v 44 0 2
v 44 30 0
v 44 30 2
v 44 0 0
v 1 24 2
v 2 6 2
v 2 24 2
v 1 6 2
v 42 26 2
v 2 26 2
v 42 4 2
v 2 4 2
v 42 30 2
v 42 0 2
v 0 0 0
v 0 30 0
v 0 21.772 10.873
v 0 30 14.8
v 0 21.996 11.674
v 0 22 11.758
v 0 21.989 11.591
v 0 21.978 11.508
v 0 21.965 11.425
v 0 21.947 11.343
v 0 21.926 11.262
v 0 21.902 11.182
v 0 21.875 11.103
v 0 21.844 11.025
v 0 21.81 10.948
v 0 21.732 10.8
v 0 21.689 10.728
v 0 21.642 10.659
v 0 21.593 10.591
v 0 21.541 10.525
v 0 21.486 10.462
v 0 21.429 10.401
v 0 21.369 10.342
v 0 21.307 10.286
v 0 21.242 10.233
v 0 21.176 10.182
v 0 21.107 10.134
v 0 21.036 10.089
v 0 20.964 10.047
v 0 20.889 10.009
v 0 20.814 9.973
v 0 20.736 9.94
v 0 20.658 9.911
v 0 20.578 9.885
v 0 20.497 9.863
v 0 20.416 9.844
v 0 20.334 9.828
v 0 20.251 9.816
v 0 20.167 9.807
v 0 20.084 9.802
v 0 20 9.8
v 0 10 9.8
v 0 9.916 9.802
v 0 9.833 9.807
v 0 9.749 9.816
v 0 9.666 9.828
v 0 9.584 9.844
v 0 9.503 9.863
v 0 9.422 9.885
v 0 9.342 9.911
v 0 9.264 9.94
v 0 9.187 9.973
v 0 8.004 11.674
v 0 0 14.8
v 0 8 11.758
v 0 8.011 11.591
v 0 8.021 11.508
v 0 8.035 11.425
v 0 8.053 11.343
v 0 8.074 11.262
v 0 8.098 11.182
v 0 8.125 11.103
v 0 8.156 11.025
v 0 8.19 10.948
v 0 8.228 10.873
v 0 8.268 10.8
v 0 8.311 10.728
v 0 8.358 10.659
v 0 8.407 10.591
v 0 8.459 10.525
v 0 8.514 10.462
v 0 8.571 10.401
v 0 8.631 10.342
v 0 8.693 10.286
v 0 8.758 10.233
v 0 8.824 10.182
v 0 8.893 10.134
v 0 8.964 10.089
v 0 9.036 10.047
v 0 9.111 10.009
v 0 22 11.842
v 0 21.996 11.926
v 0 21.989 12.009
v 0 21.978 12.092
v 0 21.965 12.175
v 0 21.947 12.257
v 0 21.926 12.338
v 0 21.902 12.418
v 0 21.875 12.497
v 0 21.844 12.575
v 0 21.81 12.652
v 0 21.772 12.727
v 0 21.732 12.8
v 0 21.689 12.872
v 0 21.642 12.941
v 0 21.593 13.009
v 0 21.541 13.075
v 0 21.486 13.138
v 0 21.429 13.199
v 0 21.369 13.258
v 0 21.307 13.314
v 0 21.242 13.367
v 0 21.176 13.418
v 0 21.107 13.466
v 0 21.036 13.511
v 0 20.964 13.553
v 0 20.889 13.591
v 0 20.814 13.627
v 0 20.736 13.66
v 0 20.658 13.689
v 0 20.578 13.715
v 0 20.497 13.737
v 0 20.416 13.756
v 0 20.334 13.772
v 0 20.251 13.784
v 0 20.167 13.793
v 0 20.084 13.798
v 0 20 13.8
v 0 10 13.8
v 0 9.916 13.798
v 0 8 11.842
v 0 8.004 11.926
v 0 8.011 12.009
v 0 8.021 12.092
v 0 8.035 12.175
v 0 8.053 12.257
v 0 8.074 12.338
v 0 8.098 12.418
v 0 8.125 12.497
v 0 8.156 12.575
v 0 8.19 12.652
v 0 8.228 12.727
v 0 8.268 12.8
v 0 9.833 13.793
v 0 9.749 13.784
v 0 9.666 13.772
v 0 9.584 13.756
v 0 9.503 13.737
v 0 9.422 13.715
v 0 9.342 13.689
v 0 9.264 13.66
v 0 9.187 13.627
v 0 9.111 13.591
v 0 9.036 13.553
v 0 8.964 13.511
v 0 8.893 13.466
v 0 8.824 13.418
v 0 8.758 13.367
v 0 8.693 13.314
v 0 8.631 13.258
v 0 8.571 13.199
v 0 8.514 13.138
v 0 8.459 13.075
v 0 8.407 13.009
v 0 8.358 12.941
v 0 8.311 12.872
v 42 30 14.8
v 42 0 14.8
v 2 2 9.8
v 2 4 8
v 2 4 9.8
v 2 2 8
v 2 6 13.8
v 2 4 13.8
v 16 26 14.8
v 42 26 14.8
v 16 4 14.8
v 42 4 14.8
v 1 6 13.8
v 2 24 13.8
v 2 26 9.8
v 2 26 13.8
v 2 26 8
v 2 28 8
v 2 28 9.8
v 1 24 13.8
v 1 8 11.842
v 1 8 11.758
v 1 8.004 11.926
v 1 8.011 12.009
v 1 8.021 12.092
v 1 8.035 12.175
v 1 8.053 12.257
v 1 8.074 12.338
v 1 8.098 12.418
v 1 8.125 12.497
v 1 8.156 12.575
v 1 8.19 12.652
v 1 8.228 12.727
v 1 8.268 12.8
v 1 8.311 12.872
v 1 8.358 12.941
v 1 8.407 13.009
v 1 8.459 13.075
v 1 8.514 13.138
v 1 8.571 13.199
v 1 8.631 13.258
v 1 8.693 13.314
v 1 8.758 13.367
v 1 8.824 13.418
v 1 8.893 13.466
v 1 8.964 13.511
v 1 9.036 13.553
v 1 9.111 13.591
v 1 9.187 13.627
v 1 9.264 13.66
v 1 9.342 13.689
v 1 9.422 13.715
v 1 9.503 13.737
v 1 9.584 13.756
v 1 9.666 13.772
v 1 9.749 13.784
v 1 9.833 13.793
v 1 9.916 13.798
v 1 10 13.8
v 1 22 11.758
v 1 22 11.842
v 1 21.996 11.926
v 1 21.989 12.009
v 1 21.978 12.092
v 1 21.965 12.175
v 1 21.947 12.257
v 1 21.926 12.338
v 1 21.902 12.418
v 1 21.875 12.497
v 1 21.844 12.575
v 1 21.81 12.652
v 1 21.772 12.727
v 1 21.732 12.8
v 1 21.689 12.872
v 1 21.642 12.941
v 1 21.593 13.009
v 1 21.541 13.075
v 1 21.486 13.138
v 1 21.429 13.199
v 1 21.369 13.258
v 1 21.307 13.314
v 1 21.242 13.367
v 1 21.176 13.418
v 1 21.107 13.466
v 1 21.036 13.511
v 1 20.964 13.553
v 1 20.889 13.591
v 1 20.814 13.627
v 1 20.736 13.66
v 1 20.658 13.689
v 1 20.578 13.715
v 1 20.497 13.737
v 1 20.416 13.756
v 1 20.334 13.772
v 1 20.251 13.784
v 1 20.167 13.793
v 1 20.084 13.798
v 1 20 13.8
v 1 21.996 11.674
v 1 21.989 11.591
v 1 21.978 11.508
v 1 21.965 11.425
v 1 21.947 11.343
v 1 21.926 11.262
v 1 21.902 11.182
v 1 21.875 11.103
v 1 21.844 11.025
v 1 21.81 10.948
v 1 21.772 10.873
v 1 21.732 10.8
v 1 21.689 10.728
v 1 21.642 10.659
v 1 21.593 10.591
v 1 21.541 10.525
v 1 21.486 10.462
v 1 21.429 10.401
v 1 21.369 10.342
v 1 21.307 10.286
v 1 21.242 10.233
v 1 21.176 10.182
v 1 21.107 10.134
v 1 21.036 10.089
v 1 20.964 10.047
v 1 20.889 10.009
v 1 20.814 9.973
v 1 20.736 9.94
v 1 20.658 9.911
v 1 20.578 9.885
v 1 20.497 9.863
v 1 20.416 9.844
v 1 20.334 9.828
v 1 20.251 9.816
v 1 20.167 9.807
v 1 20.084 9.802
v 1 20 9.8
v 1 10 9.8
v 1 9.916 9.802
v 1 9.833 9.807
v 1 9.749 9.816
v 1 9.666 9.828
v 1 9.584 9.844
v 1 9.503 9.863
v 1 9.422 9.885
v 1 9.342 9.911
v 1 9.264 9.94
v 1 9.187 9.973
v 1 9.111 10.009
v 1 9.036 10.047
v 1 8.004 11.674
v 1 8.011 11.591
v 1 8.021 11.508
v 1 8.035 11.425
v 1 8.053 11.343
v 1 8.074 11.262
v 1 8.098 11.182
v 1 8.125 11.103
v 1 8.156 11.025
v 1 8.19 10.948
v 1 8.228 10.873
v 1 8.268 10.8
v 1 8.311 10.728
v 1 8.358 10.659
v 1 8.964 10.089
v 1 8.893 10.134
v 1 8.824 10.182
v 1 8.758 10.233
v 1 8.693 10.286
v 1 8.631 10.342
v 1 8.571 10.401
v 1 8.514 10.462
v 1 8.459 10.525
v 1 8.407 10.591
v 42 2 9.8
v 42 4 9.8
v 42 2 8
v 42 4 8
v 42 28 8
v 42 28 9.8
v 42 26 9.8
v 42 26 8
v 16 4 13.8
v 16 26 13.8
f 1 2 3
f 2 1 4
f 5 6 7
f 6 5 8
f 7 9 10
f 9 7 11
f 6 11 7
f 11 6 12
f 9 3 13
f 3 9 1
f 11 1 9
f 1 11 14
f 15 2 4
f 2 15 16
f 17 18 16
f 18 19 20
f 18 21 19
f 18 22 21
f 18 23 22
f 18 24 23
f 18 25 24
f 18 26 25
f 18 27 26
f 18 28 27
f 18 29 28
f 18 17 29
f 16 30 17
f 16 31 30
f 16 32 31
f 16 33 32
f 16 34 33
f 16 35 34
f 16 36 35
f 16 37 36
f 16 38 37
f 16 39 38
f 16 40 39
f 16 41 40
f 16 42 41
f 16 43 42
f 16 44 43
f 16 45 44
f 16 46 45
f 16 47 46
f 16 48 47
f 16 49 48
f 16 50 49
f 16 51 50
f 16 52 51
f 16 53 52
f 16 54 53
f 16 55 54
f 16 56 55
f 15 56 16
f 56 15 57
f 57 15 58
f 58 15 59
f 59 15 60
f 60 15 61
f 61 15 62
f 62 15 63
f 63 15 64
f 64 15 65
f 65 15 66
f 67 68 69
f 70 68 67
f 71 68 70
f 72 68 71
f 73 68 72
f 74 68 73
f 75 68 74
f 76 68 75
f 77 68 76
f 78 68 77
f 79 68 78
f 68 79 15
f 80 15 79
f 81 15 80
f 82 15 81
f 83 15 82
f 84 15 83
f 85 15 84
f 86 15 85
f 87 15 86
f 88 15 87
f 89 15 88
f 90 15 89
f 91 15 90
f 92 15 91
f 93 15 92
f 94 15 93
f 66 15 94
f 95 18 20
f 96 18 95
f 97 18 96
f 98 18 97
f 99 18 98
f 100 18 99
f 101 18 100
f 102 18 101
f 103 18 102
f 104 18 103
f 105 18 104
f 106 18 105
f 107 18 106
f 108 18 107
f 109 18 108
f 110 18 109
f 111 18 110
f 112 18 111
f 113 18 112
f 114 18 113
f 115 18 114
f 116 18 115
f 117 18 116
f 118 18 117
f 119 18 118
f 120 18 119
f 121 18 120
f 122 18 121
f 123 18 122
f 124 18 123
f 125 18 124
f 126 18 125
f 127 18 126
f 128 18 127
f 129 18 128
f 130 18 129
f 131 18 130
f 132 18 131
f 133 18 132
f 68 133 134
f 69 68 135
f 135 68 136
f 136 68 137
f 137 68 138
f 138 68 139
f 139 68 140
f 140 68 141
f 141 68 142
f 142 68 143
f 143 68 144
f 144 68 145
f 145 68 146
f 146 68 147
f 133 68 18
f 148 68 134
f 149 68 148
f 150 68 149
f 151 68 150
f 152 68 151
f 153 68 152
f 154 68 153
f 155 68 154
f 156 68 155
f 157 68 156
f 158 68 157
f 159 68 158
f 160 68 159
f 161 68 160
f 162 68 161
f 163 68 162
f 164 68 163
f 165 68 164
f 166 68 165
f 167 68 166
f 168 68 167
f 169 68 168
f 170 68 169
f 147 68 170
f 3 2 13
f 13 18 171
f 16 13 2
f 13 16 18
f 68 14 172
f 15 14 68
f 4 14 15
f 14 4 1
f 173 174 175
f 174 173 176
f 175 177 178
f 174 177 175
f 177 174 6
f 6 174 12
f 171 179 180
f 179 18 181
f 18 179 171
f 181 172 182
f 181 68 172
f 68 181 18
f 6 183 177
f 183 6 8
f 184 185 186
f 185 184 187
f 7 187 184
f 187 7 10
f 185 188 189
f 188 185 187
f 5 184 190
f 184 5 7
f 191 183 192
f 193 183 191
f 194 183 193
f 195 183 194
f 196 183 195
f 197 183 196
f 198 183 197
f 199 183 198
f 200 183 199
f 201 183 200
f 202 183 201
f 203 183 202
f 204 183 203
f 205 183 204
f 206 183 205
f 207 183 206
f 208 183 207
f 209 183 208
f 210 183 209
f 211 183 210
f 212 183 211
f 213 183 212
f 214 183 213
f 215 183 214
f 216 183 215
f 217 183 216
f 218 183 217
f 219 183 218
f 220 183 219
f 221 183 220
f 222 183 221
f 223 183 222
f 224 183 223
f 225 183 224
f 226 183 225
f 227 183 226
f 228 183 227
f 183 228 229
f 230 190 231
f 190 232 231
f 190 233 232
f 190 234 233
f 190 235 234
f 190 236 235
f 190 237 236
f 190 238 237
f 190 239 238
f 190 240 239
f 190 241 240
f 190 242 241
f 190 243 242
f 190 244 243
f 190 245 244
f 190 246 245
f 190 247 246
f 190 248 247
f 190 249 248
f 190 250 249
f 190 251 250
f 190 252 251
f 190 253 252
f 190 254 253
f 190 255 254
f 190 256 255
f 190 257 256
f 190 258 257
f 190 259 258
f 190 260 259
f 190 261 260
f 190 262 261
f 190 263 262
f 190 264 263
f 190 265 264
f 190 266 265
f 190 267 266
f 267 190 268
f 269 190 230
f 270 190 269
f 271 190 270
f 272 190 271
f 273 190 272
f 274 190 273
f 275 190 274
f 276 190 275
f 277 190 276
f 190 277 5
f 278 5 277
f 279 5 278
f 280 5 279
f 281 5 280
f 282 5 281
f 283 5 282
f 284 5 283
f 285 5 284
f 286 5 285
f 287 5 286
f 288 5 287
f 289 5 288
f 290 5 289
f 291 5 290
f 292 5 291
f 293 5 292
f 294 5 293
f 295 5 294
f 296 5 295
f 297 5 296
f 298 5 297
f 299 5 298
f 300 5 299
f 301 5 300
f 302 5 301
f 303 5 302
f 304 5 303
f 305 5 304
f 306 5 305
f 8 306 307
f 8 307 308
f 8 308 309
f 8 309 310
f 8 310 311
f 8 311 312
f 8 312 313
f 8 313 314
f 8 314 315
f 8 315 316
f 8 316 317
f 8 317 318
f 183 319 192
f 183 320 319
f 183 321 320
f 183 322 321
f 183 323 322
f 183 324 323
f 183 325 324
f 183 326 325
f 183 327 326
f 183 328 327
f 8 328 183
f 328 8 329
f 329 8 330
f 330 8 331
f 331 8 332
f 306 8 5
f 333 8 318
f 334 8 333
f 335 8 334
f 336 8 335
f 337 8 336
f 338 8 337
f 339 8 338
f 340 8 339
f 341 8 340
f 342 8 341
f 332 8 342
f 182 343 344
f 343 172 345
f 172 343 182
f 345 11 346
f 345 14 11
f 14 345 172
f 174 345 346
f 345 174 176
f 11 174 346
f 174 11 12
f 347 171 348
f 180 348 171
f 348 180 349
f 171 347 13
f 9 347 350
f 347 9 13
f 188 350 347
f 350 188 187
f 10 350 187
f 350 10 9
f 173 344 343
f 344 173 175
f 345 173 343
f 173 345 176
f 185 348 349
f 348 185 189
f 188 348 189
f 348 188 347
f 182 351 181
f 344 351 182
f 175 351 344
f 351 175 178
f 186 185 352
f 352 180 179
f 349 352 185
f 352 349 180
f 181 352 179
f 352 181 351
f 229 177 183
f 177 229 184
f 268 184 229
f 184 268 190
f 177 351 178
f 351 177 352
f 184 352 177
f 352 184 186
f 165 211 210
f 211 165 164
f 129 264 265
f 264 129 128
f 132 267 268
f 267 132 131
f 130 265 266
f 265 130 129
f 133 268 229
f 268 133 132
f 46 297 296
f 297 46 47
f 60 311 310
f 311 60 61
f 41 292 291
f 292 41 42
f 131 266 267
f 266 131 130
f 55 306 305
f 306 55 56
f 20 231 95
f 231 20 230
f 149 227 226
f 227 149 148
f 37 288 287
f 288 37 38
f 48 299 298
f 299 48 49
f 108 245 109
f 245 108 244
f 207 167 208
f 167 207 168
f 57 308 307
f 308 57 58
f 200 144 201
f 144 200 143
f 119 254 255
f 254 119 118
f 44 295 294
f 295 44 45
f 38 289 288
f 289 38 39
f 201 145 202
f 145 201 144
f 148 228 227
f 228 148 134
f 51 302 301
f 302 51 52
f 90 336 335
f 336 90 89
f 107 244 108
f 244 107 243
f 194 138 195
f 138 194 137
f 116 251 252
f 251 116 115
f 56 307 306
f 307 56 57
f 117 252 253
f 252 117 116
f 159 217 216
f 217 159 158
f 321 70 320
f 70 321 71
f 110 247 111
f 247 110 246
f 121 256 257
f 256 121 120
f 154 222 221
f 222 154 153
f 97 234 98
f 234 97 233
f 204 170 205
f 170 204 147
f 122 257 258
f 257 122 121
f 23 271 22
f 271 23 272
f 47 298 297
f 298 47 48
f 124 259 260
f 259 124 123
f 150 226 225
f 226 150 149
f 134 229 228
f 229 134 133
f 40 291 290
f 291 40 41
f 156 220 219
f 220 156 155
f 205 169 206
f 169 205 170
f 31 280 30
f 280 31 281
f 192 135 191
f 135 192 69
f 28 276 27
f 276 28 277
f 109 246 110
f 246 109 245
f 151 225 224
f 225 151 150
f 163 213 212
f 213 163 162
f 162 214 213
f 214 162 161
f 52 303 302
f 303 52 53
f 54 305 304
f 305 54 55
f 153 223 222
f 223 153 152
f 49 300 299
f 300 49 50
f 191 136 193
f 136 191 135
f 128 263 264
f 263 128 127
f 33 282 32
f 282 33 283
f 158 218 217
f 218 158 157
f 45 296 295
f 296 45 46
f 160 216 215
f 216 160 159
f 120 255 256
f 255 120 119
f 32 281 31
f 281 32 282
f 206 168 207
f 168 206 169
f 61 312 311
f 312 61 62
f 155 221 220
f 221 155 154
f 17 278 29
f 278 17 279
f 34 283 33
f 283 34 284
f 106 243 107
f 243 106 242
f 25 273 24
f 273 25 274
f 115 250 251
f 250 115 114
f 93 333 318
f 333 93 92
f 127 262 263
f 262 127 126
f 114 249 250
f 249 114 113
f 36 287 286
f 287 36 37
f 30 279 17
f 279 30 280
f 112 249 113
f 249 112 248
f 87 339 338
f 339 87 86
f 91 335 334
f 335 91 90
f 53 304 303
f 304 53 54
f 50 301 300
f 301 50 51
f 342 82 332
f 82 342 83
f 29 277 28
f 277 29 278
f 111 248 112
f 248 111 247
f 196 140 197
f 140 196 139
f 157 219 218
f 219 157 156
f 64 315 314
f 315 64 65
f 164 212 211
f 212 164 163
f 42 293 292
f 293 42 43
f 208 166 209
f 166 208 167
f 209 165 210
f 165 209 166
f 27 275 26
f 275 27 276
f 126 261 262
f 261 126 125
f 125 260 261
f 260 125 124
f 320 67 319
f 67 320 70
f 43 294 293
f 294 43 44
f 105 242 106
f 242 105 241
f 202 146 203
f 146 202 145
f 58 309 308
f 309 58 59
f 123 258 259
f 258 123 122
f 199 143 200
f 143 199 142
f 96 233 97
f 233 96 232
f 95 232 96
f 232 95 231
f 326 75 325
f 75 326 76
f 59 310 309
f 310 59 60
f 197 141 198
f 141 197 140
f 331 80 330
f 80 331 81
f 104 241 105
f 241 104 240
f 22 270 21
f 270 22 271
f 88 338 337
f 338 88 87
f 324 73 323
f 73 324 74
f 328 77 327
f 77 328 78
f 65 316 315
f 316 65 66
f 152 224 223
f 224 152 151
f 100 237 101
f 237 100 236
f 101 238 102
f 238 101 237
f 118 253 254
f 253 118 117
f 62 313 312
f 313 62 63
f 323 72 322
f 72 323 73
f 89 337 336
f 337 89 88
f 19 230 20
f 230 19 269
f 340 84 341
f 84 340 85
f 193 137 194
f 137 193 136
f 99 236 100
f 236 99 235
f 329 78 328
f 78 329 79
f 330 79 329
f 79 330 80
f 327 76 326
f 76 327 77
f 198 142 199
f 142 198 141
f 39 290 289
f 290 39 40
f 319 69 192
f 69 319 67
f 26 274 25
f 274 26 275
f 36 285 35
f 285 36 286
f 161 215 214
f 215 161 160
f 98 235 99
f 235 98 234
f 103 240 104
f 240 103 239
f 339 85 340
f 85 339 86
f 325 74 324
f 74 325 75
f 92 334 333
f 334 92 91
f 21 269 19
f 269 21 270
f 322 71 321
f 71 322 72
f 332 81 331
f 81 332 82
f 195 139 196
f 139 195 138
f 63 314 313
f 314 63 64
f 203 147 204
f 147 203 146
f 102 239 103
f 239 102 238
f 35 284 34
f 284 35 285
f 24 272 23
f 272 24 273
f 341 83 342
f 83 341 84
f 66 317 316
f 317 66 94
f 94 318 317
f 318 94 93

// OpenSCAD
smoothness = 150;
module caseBottom(){

    hull(){
        color("green")sphere(r=4,$fn=smoothness);
        translate([0,65,0])color("green")sphere(r=4,$fn=smoothness);
        translate([117,0,0])color("green")sphere(r=4,$fn=smoothness);
        translate([117,65,0])color("green")sphere(r=4,$fn=smoothness);
        translate([0,0,0])rotate([0,90,0])cylinder(h=117,r=4,$fn=smoothness);
        translate([0,65,0])rotate([0,90,0])cylinder(h=117,r=4,$fn=smoothness);
        translate([0,0,0])rotate([-90,0,0])cylinder(h=65,r=4,$fn=smoothness);
        translate([117,0,0])rotate([-90,0,0])cylinder(h=65,r=4,$fn=smoothness);
    };
    {
        color("green")cylinder(h=10,r=4,$fn=smoothness);
        translate([0,65,0])color("green")cylinder(h=10,r=4,$fn=smoothness);
        translate([117,0,0])color("green")cylinder(h=10,r=4,$fn=smoothness);
        translate([117,65,0])color("green")cylinder(h=10,r=4,$fn=smoothness);
        translate([0,-4,0])rotate([0,0,0])cube([117,4,10]);
        translate([0,65,0])rotate([0,0,0])cube([117,4,10]);
        translate([-4,0,0])rotate([0,0,0])cube([4,65,10]);
        translate([117,0,0])rotate([0,0,0])cube([4,65,10]);
    }
};


radiomodulelength = 40;
radiowidth = 26;
pcbthickness = 1.8;
headerwidth = 2;
radiobottomgap = 6;
radiotopgap = 5;

module radioslide(){
    cube([radiomodulelength +2+2, radiowidth+2+2, 2]);
    cube([2,6, 2+radiobottomgap+pcbthickness+radiotopgap]);
    translate([0,radiowidth-2,0])cube([2,6, 2+radiobottomgap+pcbthickness+radiotopgap]);
    cube([1,radiowidth, 2+radiobottomgap+pcbthickness+radiotopgap]);
    
    translate([2,0,2])color("green")cube([radiomodulelength, 2+headerwidth, radiobottomgap]);
    translate([2,radiowidth,2])color("green")cube([radiomodulelength, 2+headerwidth, radiobottomgap]);
    translate([2,0,2+radiobottomgap])color("green")cube([radiomodulelength, 2, pcbthickness]);
    translate([2,radiowidth+2,2+radiobottomgap])color("green")cube([radiomodulelength, 2, pcbthickness]);
    translate([2,0,2+radiobottomgap+pcbthickness])color("blue")cube([radiomodulelength, 2+headerwidth, radiotopgap]);
    translate([2,radiowidth,2+radiobottomgap+pcbthickness])color("green")cube([radiomodulelength, 2+headerwidth, radiotopgap]);
    
    translate([0,0,2+radiobottomgap+pcbthickness+radiotopgap-1])cube([16, radiowidth+2+2, 1]);
    
}


//radioslide();
difference(){
    radioslide();
    hull(){
        translate([0,10,2+radiobottomgap+pcbthickness+2])rotate([0,90,0])cylinder(r=2,h=1,$fn=smoothness);
        translate([0,20,2+radiobottomgap+pcbthickness+2])rotate([0,90,0])cylinder(r=2,h=1,$fn=smoothness);
    }
};
